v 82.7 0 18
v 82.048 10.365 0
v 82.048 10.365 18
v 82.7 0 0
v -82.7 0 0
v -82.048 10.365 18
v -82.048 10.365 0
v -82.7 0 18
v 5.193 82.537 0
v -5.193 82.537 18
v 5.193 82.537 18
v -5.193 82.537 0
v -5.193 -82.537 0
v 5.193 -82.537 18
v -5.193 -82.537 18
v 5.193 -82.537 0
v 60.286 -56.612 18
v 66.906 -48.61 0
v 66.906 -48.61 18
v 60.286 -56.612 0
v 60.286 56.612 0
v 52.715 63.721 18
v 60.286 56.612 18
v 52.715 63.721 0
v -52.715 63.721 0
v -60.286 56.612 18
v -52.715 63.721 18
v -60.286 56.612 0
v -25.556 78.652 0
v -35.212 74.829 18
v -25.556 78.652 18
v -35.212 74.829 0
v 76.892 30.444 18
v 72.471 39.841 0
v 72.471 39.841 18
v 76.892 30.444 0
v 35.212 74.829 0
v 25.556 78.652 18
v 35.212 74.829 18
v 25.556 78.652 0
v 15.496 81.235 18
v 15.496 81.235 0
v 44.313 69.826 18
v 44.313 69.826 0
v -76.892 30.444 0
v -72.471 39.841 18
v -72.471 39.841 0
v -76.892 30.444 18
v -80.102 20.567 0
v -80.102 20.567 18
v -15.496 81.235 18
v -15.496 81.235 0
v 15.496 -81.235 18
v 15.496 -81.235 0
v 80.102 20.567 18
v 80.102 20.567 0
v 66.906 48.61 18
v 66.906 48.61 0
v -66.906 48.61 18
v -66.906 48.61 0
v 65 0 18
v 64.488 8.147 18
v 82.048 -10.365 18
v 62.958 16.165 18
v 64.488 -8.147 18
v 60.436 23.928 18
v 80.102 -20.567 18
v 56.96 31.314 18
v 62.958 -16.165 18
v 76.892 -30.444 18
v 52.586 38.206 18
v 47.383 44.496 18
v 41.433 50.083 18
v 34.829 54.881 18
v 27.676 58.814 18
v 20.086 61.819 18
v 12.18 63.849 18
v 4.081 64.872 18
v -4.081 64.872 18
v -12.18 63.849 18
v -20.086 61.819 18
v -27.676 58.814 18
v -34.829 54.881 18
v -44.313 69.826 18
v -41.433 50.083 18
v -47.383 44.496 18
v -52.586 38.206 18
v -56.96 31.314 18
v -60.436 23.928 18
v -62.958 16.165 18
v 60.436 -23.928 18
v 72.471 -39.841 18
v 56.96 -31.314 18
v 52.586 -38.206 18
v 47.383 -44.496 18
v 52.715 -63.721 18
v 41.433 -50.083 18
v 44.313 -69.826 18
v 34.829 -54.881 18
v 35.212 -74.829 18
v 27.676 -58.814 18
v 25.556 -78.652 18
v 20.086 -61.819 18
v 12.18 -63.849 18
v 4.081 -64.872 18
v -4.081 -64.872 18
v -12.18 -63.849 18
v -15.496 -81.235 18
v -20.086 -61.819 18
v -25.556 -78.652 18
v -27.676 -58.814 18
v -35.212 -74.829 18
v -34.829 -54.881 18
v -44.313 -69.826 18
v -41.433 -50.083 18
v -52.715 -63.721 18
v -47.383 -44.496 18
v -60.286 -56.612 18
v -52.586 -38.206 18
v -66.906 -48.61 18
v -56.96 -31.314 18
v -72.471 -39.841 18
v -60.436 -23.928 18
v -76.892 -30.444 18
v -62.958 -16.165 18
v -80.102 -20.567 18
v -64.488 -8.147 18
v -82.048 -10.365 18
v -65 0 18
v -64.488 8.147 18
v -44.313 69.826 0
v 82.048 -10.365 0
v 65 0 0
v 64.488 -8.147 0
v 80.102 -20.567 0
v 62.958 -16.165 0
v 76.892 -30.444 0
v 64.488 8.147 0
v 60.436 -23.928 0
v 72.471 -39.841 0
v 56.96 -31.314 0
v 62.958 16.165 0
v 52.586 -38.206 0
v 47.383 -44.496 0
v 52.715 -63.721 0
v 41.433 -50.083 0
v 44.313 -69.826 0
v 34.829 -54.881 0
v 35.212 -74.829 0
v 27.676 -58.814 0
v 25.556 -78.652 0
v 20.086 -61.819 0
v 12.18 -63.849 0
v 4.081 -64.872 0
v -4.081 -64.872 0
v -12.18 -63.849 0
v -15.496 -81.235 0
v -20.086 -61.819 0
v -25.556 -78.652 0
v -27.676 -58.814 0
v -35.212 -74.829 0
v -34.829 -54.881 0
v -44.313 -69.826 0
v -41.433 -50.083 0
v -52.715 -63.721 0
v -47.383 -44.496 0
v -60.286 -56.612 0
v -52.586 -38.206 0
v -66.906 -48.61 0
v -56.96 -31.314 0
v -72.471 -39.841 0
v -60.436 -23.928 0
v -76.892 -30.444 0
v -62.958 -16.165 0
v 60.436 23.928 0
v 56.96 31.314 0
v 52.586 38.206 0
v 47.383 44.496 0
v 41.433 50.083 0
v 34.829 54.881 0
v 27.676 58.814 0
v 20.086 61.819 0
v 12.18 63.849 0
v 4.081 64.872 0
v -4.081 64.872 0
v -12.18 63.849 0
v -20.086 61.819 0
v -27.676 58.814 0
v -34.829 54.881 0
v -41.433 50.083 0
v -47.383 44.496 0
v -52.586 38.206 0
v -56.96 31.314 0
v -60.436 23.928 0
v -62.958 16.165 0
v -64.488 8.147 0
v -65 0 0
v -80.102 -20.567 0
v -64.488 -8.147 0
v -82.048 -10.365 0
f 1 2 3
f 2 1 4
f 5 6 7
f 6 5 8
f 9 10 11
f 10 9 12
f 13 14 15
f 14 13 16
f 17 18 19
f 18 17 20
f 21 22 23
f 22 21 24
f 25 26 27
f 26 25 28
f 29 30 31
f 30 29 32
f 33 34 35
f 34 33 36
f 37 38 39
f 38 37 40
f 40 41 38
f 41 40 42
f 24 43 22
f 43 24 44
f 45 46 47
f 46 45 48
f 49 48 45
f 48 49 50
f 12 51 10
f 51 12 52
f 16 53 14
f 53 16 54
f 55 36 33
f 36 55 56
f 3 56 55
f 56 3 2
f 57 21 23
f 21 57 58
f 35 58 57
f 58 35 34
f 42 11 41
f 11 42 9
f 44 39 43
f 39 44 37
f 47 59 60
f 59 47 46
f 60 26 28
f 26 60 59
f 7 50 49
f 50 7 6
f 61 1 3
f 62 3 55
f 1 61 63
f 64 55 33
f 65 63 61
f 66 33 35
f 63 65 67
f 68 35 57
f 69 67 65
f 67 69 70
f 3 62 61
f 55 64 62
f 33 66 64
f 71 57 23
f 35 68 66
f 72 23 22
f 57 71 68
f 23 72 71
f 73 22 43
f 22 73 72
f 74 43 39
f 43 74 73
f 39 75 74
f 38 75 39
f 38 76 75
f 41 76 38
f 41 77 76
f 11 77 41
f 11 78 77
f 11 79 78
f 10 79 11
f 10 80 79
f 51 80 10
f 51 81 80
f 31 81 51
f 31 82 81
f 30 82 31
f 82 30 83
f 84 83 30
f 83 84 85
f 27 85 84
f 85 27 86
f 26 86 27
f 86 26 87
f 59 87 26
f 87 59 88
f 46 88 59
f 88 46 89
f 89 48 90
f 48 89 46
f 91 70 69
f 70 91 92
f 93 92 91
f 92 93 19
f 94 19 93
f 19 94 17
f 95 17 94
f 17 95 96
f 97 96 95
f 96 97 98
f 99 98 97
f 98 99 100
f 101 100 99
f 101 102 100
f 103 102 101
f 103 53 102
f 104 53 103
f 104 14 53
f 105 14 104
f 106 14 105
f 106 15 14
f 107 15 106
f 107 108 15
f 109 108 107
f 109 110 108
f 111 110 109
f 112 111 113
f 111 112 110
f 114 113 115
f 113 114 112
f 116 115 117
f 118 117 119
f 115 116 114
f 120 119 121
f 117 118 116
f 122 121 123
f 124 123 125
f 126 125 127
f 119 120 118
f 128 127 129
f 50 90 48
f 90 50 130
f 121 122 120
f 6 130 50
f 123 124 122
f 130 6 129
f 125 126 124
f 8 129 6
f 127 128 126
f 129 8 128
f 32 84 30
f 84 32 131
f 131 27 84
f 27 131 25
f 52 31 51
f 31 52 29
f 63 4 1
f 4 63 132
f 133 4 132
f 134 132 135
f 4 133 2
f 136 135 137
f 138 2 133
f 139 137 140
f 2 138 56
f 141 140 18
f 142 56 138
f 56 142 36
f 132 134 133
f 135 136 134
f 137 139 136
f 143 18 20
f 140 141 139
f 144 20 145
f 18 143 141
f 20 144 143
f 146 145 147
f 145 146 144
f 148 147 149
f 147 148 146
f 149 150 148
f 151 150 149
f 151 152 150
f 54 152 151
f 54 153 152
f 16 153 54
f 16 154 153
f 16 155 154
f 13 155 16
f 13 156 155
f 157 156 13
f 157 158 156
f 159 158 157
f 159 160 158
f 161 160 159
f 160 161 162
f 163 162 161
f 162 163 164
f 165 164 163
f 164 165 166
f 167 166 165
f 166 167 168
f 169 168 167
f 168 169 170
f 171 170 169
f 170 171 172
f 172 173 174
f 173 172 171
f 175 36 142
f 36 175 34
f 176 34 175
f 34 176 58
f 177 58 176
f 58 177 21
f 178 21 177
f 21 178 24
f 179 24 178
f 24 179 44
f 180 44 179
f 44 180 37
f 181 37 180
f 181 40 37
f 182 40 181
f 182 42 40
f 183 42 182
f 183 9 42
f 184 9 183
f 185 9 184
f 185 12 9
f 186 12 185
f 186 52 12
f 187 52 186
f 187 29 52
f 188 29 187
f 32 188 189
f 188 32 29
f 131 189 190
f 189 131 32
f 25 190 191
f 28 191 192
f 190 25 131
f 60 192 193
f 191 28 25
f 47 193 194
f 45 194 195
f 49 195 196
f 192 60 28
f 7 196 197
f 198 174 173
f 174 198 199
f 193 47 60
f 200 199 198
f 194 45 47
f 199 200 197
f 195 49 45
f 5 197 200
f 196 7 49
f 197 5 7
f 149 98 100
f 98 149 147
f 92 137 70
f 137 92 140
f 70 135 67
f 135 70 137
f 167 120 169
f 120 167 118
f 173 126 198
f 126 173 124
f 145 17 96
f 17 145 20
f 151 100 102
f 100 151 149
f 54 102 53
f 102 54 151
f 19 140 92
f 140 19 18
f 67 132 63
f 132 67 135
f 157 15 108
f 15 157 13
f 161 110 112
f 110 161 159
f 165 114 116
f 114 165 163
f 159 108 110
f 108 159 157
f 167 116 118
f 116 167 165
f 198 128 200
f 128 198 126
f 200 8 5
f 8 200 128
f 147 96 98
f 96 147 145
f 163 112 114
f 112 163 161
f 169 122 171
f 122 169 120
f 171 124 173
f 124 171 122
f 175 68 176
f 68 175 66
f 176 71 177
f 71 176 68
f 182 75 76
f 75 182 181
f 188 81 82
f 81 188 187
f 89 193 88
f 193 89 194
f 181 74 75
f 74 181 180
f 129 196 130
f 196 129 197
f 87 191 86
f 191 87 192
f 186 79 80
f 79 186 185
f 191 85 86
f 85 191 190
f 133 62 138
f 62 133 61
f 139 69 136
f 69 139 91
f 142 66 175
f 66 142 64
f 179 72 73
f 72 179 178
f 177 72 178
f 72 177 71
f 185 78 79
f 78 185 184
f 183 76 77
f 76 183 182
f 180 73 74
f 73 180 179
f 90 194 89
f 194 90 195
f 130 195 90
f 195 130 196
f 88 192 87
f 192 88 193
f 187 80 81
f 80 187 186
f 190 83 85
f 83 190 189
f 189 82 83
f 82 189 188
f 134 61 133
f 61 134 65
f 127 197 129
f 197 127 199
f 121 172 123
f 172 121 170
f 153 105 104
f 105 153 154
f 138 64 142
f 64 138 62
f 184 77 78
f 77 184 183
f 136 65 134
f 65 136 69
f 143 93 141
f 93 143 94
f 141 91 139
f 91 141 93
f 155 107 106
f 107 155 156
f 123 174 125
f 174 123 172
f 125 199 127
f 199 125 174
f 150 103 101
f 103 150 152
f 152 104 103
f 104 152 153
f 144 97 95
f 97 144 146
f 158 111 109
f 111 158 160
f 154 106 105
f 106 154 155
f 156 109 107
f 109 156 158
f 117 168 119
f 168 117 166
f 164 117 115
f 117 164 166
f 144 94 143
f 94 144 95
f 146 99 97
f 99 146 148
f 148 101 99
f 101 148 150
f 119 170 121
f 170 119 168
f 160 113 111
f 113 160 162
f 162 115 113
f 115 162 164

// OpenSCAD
$fn = 50;


difference() {
	union() {
		translate(v = [0, 0, 0]) {
			rotate(a = [0, 0, 0]) {
				cylinder(h = 18, r = 82.7000000000);
			}
		}
	}
	union() {
		translate(v = [0, 0, 0]) {
			rotate(a = [0, 0, 0]) {
				cylinder(h = 18, r = 65.0000000000);
			}
		}
	}
}
